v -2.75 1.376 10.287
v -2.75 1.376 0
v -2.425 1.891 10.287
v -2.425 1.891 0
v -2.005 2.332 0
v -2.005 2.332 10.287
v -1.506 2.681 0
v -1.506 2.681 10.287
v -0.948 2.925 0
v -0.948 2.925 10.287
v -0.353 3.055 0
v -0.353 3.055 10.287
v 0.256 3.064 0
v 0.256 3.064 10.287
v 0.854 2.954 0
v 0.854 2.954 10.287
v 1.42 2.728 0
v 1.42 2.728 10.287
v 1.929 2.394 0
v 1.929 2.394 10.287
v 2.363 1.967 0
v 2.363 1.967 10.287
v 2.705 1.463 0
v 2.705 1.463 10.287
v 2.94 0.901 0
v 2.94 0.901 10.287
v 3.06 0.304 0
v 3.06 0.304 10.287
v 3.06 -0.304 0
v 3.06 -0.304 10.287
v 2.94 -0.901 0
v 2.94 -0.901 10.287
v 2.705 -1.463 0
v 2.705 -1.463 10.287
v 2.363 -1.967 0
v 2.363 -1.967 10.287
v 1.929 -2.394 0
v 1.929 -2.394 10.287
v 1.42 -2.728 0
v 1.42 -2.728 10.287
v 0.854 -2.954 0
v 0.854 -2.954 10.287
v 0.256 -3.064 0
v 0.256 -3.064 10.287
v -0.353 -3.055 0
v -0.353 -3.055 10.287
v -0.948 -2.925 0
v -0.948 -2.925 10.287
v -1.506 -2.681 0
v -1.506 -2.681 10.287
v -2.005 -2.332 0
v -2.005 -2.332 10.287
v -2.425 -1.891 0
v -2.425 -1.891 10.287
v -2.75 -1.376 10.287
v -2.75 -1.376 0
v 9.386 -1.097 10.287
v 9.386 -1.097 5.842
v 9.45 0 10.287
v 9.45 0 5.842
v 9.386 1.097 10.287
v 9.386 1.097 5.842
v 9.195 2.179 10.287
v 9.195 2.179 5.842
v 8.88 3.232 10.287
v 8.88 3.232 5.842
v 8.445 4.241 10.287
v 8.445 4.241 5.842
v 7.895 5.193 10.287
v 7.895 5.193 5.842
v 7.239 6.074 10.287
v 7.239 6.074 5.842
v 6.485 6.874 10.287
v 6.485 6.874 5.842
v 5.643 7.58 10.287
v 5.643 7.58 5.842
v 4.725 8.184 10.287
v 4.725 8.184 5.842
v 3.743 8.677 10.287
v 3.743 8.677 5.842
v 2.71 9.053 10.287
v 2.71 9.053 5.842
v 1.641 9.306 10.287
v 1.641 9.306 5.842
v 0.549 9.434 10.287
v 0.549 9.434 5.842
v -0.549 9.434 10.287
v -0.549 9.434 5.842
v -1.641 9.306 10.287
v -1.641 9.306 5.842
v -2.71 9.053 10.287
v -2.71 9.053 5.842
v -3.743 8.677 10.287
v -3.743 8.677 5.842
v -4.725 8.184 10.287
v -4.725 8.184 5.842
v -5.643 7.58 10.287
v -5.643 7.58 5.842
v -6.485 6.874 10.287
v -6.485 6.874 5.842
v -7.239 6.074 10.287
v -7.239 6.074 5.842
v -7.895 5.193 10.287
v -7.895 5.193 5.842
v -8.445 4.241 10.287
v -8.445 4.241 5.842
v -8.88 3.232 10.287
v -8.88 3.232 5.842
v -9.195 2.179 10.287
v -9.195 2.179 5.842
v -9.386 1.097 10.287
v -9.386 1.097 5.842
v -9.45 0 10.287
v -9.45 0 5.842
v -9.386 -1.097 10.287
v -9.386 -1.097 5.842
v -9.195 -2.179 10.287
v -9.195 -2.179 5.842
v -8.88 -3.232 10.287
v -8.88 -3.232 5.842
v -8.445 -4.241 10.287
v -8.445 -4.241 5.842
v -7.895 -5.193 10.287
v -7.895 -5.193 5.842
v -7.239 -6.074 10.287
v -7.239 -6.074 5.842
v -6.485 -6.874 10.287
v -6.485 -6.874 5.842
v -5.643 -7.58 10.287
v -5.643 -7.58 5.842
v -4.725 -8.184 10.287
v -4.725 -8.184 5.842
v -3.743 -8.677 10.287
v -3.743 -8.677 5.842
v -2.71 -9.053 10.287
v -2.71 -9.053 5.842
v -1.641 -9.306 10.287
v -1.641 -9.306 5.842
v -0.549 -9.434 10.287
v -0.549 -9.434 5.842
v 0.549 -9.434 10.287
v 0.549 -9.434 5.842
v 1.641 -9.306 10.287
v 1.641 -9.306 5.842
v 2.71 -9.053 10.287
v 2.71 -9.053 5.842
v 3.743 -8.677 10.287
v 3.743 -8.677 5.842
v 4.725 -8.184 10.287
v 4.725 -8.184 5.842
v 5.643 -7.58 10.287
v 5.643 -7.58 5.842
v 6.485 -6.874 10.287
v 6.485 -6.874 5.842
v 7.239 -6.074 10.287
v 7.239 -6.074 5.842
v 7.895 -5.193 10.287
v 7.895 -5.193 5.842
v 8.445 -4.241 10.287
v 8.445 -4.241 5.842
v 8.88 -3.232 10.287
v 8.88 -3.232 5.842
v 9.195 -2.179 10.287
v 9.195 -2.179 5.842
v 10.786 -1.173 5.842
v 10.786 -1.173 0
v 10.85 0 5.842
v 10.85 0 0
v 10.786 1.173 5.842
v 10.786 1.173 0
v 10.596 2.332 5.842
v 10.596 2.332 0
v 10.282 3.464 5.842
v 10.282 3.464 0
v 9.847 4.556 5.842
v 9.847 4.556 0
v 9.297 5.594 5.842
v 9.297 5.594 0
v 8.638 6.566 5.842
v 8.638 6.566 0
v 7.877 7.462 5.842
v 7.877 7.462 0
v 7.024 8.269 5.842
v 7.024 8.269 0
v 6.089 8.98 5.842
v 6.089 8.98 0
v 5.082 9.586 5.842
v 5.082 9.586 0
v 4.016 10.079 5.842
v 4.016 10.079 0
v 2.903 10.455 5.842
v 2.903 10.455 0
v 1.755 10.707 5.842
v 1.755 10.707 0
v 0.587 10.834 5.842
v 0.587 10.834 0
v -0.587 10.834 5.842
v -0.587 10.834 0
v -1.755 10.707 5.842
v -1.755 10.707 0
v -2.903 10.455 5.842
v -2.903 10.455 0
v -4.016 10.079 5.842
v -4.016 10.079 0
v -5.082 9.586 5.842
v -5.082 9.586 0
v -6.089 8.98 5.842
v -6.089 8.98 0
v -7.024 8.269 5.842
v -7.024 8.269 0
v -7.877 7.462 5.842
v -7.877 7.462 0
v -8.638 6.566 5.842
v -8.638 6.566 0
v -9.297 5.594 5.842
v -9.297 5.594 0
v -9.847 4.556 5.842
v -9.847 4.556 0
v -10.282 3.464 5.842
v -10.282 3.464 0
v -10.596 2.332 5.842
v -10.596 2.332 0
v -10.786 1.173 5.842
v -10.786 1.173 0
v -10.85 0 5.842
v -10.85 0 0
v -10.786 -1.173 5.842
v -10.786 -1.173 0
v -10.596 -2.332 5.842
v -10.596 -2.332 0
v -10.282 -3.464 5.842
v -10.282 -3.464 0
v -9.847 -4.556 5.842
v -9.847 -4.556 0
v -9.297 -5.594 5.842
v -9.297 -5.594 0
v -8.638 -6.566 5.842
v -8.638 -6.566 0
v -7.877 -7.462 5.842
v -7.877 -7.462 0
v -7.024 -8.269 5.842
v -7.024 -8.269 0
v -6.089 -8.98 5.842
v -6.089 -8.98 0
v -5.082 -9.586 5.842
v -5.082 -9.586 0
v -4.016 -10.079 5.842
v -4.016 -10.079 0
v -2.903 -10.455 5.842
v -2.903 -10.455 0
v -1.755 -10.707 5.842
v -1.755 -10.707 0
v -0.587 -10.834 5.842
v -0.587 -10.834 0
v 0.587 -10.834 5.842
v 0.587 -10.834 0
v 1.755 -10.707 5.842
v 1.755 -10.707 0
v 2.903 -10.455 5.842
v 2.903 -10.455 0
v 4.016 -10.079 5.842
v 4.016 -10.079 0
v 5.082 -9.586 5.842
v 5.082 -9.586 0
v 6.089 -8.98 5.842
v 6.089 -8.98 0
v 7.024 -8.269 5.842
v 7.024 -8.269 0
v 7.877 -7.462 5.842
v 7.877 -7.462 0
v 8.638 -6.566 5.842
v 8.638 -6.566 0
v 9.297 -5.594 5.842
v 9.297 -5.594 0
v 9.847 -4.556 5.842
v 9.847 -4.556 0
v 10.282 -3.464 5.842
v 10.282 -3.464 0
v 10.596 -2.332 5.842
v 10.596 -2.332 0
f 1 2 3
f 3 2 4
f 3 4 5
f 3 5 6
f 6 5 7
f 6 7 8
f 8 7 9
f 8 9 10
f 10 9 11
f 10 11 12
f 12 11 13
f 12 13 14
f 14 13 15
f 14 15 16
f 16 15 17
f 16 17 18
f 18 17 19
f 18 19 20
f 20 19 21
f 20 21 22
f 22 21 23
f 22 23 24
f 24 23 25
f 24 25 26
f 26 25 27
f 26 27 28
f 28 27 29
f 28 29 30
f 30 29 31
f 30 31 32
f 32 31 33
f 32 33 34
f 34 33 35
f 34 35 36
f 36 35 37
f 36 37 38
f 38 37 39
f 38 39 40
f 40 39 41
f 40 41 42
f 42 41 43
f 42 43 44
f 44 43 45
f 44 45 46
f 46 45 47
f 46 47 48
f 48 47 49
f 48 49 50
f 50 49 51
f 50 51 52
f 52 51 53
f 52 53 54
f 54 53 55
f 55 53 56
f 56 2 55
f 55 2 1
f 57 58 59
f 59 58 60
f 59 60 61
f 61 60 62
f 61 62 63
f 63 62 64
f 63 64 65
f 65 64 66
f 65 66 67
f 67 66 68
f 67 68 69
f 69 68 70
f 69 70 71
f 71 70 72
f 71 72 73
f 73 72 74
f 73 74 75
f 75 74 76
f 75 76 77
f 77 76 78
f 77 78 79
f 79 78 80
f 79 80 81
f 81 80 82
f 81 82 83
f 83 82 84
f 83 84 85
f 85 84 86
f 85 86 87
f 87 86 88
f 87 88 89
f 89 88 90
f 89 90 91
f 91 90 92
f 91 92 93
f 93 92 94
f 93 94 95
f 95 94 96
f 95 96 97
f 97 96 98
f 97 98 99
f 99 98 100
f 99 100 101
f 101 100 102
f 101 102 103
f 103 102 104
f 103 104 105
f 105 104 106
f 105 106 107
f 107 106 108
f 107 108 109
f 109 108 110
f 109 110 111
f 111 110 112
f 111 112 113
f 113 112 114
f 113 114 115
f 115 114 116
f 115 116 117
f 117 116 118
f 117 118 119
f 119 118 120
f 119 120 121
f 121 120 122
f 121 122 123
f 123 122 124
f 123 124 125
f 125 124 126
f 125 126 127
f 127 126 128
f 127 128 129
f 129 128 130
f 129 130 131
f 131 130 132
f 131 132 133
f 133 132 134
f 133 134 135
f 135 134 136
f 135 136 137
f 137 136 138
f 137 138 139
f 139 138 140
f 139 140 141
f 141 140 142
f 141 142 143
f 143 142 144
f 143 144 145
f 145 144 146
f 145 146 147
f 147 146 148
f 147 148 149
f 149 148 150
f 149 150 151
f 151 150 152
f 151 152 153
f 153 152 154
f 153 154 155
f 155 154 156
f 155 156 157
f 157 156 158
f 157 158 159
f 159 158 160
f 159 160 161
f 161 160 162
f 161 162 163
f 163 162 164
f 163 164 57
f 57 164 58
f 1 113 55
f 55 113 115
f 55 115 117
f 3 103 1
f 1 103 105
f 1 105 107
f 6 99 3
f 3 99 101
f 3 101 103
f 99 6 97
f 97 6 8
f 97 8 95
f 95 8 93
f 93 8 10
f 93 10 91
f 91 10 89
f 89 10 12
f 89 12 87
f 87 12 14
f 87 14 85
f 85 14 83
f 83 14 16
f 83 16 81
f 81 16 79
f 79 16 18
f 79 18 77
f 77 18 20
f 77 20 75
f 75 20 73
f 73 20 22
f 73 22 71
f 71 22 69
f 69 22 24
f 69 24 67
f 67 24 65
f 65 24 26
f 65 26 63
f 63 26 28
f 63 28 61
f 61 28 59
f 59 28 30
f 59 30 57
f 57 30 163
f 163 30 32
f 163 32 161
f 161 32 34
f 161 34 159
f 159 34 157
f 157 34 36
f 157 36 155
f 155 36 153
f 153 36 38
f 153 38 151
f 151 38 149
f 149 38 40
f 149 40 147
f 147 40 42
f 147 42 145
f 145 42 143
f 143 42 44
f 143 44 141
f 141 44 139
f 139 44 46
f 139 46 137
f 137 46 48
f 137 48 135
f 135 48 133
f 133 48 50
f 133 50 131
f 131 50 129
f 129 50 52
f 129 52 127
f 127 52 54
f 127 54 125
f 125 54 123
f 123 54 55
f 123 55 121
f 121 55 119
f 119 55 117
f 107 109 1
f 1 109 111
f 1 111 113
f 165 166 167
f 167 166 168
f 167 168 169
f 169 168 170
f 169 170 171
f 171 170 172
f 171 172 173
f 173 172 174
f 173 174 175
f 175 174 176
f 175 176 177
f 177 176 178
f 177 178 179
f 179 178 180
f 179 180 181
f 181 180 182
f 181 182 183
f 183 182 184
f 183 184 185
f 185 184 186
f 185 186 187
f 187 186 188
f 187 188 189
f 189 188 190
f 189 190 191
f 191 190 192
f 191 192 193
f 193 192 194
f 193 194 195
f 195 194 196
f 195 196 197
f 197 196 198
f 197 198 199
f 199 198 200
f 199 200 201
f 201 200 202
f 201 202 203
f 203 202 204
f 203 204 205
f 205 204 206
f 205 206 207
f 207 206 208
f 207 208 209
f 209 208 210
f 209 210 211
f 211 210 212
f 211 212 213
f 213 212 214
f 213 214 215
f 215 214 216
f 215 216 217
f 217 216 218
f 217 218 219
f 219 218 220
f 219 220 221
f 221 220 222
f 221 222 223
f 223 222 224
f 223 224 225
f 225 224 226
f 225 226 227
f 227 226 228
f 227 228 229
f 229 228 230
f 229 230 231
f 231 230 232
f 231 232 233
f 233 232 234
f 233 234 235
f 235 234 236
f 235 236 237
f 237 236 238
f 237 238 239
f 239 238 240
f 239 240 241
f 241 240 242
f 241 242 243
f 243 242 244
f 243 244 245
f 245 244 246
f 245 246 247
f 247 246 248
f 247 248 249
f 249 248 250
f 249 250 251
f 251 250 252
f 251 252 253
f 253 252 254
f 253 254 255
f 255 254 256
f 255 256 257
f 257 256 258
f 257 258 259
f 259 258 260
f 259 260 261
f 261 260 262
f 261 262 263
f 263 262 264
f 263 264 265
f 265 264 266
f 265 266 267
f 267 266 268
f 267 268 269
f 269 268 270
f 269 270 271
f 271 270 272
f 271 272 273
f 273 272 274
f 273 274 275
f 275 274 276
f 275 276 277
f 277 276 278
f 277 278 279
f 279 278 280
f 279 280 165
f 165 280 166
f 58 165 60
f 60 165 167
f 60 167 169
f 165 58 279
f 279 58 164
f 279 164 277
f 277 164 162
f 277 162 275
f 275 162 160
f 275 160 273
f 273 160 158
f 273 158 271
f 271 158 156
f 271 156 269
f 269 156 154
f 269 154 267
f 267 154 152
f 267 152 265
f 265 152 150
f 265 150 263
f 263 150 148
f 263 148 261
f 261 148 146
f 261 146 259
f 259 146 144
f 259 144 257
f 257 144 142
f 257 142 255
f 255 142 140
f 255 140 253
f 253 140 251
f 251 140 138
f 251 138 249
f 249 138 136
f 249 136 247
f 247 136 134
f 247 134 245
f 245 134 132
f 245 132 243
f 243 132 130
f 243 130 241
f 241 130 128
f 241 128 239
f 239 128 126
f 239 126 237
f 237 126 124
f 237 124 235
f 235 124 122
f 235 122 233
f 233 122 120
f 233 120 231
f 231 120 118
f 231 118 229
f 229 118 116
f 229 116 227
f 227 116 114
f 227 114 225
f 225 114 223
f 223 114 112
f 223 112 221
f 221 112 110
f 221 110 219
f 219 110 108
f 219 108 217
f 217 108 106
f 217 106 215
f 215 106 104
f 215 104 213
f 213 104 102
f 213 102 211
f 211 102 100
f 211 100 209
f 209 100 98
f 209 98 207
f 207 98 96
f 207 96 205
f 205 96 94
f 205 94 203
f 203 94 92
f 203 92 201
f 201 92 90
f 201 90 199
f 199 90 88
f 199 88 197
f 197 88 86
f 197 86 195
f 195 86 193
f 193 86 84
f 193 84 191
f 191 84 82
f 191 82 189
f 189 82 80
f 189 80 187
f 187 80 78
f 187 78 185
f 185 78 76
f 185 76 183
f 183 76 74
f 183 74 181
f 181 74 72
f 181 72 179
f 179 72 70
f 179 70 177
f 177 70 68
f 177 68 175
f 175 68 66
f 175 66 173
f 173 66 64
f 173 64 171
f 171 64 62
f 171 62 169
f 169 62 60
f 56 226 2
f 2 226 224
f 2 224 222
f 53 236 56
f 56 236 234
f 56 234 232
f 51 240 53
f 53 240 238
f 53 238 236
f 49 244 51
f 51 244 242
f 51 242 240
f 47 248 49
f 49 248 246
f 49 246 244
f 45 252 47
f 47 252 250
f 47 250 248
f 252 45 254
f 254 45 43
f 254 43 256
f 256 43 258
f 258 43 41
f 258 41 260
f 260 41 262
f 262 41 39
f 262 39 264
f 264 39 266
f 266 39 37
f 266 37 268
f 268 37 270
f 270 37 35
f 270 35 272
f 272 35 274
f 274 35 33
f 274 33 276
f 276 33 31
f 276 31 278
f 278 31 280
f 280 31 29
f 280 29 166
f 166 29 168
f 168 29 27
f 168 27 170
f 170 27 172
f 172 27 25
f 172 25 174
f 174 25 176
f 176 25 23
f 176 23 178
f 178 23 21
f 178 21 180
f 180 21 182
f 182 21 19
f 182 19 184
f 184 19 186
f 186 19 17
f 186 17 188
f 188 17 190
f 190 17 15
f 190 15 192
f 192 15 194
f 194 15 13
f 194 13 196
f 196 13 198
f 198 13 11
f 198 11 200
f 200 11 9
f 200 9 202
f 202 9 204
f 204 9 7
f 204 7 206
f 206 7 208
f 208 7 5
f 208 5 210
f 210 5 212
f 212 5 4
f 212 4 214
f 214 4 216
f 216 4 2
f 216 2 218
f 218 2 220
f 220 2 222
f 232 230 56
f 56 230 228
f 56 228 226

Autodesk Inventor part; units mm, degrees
ref_plane "YZ Plane" through (0, 0, 0) normal (1, 0, 0) x (0, 1, 0)
ref_plane "XZ Plane" through (0, 0, 0) normal (0, 1, 0) x (-1, 0, 0)
ref_plane "XY Plane" through (0, 0, 0) normal (0, 0, 1) x (1, 0, 0)
sketch "Sketch1" plane through (0, 0, 0) normal (0, 0, 1) x (1, 0, 0)
  circle A0 centre (0, 0) radius 10.85
  dimension "d0" = 21.7
extrude "Extrusion1" add sketch "Sketch1" along normal blind 5.842
sketch "Sketch2" plane through (0, 0, 5.842) normal (0, 0, 1) x (1, 0, 0)
  circle A0 centre (0, 0) radius 9.45
  dimension "d3" = 18.9
extrude "Extrusion2" add sketch "Sketch2" along normal blind 4.445
sketch "Sketch3" plane through (0, 0, 10.287) normal (0, 0, 1) x (1, 0, 0)
  circle A0 centre (0, 0) radius 3.075
  circle A1 centre (0, 0) radius 10.85 construction
  line L0 (-10.85, 0) -> (10.85, 0) construction
  circle A2 centre (0, 0) radius 9.45 construction
  line L1 (0, 9.45) -> (0, -9.45) construction
  line L2 (-2.75, 1.3759) -> (-2.75, -1.3759)
  dimension "d13" = 6.15
  dimension "d16" = 2.75
extrude "Extrusion3" cut sketch "Sketch3" against normal through all contours A0 L2 picked at (-0.8083, 0)
properties part number "wheel_mount"
